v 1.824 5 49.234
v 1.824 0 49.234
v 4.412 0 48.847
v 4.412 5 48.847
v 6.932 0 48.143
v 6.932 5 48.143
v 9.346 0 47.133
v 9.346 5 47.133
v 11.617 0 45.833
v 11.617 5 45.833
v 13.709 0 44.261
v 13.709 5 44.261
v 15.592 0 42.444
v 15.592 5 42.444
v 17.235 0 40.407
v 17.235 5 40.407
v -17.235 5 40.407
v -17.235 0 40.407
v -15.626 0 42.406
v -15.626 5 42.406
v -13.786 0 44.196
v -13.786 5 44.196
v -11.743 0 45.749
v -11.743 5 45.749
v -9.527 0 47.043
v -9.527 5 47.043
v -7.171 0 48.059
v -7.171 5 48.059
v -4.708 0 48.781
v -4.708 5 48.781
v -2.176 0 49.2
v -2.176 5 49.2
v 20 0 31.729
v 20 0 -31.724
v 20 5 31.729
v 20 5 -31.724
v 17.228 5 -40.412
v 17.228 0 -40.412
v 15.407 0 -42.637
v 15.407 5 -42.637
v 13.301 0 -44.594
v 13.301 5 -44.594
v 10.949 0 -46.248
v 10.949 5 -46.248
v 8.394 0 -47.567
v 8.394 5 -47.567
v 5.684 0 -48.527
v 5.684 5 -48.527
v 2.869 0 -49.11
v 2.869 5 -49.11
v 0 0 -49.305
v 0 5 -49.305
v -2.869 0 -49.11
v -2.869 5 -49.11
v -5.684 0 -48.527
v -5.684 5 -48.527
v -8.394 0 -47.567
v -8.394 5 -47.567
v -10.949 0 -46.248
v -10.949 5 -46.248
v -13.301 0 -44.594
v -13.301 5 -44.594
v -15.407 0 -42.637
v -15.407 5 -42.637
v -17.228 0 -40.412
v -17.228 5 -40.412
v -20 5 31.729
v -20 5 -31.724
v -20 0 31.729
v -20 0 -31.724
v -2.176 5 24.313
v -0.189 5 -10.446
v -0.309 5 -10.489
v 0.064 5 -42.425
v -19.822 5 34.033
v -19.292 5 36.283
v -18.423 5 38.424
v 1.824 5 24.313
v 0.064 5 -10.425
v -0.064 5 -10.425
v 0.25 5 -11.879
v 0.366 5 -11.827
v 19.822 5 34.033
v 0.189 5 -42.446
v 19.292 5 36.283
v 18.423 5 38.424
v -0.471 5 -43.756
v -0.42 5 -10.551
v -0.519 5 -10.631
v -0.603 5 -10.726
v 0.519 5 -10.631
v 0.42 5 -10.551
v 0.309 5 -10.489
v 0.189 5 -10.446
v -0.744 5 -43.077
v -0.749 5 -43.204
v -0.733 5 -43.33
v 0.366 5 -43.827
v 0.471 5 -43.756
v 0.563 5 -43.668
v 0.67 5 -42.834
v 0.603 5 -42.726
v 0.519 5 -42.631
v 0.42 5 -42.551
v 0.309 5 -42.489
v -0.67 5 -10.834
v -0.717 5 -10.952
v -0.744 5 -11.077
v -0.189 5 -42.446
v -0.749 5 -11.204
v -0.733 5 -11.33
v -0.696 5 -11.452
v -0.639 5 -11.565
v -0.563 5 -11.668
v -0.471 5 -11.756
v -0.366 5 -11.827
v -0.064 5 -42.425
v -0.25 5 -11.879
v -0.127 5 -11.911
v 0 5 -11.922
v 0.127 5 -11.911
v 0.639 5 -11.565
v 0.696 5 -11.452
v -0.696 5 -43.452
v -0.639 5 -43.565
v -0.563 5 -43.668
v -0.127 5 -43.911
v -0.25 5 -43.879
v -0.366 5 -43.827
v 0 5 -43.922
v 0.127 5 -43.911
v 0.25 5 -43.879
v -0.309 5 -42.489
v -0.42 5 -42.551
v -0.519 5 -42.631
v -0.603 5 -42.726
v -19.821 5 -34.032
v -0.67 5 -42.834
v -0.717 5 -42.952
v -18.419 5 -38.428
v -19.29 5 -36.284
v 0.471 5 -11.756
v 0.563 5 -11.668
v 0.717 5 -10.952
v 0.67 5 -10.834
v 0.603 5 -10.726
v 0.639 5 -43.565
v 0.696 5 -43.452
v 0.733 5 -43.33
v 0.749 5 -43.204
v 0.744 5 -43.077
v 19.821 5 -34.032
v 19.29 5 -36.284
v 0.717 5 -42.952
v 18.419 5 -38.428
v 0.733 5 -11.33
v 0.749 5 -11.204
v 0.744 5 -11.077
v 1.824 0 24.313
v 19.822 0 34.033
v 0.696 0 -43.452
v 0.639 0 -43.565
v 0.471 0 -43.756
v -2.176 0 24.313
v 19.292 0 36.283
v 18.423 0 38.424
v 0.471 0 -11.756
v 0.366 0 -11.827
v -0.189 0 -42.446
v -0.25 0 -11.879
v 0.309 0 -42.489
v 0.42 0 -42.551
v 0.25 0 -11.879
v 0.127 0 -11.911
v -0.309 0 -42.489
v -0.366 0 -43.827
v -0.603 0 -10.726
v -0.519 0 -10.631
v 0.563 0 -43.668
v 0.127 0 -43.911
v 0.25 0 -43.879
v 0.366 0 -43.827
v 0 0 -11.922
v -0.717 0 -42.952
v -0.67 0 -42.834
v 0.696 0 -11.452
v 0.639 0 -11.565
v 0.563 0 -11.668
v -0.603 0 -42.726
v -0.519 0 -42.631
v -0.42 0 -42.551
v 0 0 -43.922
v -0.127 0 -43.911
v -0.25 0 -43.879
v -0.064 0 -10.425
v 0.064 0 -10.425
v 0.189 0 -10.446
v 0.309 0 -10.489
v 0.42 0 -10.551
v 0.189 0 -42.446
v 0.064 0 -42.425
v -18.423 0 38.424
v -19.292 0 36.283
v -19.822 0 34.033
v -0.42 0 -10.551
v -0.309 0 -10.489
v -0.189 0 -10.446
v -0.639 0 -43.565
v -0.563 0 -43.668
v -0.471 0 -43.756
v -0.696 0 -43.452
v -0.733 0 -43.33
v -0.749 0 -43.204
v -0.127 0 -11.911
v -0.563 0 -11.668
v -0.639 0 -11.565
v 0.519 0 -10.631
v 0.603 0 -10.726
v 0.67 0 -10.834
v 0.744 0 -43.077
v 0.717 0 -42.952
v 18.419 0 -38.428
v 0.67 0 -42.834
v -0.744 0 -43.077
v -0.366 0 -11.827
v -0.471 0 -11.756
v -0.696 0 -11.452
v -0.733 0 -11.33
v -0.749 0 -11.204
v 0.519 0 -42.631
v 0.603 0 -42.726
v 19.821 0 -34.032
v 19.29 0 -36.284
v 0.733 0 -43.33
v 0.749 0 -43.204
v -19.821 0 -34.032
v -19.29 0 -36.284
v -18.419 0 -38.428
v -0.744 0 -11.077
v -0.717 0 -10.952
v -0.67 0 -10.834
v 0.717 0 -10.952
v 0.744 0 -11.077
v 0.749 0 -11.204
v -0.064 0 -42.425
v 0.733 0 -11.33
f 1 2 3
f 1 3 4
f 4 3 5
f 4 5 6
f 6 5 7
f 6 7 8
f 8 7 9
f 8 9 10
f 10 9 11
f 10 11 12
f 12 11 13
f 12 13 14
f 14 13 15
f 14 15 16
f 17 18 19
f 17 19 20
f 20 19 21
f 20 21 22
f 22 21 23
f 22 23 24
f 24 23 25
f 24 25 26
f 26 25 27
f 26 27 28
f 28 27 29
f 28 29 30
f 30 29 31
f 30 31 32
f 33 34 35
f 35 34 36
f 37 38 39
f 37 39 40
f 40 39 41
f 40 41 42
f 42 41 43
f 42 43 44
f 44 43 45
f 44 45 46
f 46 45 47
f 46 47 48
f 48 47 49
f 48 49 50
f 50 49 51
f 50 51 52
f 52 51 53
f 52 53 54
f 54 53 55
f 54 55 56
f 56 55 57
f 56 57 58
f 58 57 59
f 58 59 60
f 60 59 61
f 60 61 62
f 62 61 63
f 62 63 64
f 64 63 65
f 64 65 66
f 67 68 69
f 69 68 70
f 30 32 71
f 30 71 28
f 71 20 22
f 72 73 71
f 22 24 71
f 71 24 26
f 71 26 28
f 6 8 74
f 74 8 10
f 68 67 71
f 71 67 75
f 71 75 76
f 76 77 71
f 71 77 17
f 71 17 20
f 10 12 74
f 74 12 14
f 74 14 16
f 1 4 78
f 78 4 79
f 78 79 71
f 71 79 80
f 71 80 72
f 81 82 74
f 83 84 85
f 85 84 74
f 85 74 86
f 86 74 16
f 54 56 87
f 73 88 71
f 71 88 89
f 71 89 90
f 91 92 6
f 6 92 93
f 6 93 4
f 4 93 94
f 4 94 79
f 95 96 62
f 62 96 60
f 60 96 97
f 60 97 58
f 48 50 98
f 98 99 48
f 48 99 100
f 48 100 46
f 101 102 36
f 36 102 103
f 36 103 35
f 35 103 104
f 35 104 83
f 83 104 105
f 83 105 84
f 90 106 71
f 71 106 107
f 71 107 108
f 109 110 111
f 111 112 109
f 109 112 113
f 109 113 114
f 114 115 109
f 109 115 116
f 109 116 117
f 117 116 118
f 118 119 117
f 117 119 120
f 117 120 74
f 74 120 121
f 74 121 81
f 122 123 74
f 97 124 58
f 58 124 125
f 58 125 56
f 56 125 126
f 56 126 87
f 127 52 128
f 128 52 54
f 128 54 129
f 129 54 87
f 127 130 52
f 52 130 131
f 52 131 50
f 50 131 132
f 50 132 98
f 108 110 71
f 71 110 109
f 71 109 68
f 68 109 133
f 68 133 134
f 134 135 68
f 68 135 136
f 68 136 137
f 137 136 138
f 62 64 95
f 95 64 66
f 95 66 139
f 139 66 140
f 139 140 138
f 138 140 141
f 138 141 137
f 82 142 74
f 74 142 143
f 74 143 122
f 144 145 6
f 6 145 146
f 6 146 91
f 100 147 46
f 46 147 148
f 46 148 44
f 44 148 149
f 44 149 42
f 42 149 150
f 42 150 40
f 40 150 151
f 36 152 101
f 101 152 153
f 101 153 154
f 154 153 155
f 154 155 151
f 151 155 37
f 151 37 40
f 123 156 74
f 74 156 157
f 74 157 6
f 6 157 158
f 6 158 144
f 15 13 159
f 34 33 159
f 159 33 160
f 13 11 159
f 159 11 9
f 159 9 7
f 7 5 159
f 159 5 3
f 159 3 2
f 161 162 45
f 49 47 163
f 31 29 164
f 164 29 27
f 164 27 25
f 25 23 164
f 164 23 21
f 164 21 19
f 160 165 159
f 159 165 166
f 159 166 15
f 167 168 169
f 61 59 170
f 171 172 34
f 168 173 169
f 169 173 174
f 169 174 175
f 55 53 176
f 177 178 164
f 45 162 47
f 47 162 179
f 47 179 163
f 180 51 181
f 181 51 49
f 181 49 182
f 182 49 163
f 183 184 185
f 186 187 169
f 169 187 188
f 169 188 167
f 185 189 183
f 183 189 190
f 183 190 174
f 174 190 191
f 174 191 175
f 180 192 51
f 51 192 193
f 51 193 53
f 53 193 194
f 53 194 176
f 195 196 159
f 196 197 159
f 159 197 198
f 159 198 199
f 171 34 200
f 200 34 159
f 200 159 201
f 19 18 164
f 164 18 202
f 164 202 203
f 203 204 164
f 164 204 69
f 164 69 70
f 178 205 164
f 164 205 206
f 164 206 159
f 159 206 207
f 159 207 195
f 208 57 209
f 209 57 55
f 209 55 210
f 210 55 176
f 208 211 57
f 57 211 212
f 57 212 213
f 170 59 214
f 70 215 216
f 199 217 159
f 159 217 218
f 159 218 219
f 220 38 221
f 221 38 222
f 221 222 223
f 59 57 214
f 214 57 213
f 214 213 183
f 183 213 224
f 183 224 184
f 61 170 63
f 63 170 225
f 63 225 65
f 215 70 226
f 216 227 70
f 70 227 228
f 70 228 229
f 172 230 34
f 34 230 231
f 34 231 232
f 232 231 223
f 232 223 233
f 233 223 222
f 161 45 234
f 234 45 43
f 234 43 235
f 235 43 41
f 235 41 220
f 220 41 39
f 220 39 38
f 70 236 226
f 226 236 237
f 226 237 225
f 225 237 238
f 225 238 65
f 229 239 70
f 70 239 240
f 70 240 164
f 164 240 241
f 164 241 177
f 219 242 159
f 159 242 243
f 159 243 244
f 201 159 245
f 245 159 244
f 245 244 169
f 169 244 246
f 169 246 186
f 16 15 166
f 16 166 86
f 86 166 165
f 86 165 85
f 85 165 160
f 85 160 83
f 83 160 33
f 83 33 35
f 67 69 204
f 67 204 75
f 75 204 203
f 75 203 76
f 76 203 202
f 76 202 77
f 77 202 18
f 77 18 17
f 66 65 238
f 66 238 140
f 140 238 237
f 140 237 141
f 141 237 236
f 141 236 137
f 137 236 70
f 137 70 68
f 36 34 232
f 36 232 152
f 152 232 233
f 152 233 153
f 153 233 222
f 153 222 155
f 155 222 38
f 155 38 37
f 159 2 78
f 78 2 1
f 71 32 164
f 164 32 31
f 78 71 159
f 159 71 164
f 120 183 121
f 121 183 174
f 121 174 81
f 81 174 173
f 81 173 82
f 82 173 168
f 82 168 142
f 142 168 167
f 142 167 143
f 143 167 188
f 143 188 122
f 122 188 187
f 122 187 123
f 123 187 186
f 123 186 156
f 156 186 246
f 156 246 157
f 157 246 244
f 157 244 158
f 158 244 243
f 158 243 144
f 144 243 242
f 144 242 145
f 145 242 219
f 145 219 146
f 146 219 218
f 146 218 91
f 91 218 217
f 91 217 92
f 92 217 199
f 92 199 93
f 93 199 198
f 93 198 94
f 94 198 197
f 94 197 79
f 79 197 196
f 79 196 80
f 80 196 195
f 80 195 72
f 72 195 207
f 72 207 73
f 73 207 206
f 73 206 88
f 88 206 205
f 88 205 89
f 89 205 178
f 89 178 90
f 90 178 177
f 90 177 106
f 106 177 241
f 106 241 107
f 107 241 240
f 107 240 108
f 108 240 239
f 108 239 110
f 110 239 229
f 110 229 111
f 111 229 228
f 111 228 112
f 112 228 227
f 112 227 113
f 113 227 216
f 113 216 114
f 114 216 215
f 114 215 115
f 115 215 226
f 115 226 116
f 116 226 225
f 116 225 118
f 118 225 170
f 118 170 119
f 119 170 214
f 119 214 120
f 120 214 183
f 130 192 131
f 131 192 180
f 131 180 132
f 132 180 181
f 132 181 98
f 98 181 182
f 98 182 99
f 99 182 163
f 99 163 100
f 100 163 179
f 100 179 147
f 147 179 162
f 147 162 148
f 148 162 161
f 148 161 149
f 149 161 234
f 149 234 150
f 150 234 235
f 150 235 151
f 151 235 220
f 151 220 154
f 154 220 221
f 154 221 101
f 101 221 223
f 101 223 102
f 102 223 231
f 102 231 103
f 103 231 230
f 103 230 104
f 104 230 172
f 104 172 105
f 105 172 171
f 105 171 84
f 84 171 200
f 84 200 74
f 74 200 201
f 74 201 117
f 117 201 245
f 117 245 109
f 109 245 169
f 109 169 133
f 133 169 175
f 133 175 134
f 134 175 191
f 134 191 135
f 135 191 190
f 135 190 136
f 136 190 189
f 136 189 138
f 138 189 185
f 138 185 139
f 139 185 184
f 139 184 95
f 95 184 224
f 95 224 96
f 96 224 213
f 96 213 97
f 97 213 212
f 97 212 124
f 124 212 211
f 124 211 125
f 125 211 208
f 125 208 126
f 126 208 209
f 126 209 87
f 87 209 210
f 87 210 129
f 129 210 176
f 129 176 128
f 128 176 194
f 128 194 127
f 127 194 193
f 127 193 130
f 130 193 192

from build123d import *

# Parameters (mm, degrees)
SKETCH2_W           = 40
SKETCH2_H           = 70
BOSS_EXTRUDE1_DEPTH = 5
FILLET1_R           = 15
CUT_EXTRUDE1_DEPTH  = 6
SKETCH4_R           = 0.75
CUT_EXTRUDE2_DEPTH  = 6


with BuildPart() as part:
    # Sketch2 → Boss-Extrude1 (new body)
    with BuildSketch(Plane(origin=(0, 0, 0), x_dir=(1, 0, 0), z_dir=(0, 1, 0))):
        with BuildLine():
            Line((-20, -35), (20, -35))
            ThreePointArc((20, -35), (0, -49.312603136), (-20, -35))
        make_face()
        Rectangle(SKETCH2_W, SKETCH2_H)
        with BuildLine():
            ThreePointArc((-20, 35), (0, 49.305454963), (20, 35))
            Line((20, 35), (-20, 35))
        make_face()
    extrude(amount=BOSS_EXTRUDE1_DEPTH)

    # Fillet1
    fillet1_edges = [part.edges().sort_by_distance(p)[0] for p in [
        (-20, 2.5, 35),
        (-20, 2.5, -35),
        (20, 2.5, -35),
        (20, 2.5, 35),
    ]]
    fillet(fillet1_edges, radius=FILLET1_R)

    # Sketch3 → Cut-Extrude1 (cut, through all)
    with BuildSketch(Plane.XZ):
        Polygon((0, 49.312603136), (1.823748233, 49.312603136), (1.823748233, 24.312603136), (-2.176251767, 24.312603136), (-2.176251767, 49.312603136), align=None)
    extrude(amount=-CUT_EXTRUDE1_DEPTH, mode=Mode.SUBTRACT)

    # Sketch4 → Cut-Extrude2 (cut, through all)
    with BuildSketch(Plane.XZ):
        with Locations((0, -43.172046648)):
            Circle(SKETCH4_R)
        with Locations((0, -11.172046648)):
            Circle(SKETCH4_R)
    extrude(amount=-CUT_EXTRUDE2_DEPTH, mode=Mode.SUBTRACT)


solid = part.part
